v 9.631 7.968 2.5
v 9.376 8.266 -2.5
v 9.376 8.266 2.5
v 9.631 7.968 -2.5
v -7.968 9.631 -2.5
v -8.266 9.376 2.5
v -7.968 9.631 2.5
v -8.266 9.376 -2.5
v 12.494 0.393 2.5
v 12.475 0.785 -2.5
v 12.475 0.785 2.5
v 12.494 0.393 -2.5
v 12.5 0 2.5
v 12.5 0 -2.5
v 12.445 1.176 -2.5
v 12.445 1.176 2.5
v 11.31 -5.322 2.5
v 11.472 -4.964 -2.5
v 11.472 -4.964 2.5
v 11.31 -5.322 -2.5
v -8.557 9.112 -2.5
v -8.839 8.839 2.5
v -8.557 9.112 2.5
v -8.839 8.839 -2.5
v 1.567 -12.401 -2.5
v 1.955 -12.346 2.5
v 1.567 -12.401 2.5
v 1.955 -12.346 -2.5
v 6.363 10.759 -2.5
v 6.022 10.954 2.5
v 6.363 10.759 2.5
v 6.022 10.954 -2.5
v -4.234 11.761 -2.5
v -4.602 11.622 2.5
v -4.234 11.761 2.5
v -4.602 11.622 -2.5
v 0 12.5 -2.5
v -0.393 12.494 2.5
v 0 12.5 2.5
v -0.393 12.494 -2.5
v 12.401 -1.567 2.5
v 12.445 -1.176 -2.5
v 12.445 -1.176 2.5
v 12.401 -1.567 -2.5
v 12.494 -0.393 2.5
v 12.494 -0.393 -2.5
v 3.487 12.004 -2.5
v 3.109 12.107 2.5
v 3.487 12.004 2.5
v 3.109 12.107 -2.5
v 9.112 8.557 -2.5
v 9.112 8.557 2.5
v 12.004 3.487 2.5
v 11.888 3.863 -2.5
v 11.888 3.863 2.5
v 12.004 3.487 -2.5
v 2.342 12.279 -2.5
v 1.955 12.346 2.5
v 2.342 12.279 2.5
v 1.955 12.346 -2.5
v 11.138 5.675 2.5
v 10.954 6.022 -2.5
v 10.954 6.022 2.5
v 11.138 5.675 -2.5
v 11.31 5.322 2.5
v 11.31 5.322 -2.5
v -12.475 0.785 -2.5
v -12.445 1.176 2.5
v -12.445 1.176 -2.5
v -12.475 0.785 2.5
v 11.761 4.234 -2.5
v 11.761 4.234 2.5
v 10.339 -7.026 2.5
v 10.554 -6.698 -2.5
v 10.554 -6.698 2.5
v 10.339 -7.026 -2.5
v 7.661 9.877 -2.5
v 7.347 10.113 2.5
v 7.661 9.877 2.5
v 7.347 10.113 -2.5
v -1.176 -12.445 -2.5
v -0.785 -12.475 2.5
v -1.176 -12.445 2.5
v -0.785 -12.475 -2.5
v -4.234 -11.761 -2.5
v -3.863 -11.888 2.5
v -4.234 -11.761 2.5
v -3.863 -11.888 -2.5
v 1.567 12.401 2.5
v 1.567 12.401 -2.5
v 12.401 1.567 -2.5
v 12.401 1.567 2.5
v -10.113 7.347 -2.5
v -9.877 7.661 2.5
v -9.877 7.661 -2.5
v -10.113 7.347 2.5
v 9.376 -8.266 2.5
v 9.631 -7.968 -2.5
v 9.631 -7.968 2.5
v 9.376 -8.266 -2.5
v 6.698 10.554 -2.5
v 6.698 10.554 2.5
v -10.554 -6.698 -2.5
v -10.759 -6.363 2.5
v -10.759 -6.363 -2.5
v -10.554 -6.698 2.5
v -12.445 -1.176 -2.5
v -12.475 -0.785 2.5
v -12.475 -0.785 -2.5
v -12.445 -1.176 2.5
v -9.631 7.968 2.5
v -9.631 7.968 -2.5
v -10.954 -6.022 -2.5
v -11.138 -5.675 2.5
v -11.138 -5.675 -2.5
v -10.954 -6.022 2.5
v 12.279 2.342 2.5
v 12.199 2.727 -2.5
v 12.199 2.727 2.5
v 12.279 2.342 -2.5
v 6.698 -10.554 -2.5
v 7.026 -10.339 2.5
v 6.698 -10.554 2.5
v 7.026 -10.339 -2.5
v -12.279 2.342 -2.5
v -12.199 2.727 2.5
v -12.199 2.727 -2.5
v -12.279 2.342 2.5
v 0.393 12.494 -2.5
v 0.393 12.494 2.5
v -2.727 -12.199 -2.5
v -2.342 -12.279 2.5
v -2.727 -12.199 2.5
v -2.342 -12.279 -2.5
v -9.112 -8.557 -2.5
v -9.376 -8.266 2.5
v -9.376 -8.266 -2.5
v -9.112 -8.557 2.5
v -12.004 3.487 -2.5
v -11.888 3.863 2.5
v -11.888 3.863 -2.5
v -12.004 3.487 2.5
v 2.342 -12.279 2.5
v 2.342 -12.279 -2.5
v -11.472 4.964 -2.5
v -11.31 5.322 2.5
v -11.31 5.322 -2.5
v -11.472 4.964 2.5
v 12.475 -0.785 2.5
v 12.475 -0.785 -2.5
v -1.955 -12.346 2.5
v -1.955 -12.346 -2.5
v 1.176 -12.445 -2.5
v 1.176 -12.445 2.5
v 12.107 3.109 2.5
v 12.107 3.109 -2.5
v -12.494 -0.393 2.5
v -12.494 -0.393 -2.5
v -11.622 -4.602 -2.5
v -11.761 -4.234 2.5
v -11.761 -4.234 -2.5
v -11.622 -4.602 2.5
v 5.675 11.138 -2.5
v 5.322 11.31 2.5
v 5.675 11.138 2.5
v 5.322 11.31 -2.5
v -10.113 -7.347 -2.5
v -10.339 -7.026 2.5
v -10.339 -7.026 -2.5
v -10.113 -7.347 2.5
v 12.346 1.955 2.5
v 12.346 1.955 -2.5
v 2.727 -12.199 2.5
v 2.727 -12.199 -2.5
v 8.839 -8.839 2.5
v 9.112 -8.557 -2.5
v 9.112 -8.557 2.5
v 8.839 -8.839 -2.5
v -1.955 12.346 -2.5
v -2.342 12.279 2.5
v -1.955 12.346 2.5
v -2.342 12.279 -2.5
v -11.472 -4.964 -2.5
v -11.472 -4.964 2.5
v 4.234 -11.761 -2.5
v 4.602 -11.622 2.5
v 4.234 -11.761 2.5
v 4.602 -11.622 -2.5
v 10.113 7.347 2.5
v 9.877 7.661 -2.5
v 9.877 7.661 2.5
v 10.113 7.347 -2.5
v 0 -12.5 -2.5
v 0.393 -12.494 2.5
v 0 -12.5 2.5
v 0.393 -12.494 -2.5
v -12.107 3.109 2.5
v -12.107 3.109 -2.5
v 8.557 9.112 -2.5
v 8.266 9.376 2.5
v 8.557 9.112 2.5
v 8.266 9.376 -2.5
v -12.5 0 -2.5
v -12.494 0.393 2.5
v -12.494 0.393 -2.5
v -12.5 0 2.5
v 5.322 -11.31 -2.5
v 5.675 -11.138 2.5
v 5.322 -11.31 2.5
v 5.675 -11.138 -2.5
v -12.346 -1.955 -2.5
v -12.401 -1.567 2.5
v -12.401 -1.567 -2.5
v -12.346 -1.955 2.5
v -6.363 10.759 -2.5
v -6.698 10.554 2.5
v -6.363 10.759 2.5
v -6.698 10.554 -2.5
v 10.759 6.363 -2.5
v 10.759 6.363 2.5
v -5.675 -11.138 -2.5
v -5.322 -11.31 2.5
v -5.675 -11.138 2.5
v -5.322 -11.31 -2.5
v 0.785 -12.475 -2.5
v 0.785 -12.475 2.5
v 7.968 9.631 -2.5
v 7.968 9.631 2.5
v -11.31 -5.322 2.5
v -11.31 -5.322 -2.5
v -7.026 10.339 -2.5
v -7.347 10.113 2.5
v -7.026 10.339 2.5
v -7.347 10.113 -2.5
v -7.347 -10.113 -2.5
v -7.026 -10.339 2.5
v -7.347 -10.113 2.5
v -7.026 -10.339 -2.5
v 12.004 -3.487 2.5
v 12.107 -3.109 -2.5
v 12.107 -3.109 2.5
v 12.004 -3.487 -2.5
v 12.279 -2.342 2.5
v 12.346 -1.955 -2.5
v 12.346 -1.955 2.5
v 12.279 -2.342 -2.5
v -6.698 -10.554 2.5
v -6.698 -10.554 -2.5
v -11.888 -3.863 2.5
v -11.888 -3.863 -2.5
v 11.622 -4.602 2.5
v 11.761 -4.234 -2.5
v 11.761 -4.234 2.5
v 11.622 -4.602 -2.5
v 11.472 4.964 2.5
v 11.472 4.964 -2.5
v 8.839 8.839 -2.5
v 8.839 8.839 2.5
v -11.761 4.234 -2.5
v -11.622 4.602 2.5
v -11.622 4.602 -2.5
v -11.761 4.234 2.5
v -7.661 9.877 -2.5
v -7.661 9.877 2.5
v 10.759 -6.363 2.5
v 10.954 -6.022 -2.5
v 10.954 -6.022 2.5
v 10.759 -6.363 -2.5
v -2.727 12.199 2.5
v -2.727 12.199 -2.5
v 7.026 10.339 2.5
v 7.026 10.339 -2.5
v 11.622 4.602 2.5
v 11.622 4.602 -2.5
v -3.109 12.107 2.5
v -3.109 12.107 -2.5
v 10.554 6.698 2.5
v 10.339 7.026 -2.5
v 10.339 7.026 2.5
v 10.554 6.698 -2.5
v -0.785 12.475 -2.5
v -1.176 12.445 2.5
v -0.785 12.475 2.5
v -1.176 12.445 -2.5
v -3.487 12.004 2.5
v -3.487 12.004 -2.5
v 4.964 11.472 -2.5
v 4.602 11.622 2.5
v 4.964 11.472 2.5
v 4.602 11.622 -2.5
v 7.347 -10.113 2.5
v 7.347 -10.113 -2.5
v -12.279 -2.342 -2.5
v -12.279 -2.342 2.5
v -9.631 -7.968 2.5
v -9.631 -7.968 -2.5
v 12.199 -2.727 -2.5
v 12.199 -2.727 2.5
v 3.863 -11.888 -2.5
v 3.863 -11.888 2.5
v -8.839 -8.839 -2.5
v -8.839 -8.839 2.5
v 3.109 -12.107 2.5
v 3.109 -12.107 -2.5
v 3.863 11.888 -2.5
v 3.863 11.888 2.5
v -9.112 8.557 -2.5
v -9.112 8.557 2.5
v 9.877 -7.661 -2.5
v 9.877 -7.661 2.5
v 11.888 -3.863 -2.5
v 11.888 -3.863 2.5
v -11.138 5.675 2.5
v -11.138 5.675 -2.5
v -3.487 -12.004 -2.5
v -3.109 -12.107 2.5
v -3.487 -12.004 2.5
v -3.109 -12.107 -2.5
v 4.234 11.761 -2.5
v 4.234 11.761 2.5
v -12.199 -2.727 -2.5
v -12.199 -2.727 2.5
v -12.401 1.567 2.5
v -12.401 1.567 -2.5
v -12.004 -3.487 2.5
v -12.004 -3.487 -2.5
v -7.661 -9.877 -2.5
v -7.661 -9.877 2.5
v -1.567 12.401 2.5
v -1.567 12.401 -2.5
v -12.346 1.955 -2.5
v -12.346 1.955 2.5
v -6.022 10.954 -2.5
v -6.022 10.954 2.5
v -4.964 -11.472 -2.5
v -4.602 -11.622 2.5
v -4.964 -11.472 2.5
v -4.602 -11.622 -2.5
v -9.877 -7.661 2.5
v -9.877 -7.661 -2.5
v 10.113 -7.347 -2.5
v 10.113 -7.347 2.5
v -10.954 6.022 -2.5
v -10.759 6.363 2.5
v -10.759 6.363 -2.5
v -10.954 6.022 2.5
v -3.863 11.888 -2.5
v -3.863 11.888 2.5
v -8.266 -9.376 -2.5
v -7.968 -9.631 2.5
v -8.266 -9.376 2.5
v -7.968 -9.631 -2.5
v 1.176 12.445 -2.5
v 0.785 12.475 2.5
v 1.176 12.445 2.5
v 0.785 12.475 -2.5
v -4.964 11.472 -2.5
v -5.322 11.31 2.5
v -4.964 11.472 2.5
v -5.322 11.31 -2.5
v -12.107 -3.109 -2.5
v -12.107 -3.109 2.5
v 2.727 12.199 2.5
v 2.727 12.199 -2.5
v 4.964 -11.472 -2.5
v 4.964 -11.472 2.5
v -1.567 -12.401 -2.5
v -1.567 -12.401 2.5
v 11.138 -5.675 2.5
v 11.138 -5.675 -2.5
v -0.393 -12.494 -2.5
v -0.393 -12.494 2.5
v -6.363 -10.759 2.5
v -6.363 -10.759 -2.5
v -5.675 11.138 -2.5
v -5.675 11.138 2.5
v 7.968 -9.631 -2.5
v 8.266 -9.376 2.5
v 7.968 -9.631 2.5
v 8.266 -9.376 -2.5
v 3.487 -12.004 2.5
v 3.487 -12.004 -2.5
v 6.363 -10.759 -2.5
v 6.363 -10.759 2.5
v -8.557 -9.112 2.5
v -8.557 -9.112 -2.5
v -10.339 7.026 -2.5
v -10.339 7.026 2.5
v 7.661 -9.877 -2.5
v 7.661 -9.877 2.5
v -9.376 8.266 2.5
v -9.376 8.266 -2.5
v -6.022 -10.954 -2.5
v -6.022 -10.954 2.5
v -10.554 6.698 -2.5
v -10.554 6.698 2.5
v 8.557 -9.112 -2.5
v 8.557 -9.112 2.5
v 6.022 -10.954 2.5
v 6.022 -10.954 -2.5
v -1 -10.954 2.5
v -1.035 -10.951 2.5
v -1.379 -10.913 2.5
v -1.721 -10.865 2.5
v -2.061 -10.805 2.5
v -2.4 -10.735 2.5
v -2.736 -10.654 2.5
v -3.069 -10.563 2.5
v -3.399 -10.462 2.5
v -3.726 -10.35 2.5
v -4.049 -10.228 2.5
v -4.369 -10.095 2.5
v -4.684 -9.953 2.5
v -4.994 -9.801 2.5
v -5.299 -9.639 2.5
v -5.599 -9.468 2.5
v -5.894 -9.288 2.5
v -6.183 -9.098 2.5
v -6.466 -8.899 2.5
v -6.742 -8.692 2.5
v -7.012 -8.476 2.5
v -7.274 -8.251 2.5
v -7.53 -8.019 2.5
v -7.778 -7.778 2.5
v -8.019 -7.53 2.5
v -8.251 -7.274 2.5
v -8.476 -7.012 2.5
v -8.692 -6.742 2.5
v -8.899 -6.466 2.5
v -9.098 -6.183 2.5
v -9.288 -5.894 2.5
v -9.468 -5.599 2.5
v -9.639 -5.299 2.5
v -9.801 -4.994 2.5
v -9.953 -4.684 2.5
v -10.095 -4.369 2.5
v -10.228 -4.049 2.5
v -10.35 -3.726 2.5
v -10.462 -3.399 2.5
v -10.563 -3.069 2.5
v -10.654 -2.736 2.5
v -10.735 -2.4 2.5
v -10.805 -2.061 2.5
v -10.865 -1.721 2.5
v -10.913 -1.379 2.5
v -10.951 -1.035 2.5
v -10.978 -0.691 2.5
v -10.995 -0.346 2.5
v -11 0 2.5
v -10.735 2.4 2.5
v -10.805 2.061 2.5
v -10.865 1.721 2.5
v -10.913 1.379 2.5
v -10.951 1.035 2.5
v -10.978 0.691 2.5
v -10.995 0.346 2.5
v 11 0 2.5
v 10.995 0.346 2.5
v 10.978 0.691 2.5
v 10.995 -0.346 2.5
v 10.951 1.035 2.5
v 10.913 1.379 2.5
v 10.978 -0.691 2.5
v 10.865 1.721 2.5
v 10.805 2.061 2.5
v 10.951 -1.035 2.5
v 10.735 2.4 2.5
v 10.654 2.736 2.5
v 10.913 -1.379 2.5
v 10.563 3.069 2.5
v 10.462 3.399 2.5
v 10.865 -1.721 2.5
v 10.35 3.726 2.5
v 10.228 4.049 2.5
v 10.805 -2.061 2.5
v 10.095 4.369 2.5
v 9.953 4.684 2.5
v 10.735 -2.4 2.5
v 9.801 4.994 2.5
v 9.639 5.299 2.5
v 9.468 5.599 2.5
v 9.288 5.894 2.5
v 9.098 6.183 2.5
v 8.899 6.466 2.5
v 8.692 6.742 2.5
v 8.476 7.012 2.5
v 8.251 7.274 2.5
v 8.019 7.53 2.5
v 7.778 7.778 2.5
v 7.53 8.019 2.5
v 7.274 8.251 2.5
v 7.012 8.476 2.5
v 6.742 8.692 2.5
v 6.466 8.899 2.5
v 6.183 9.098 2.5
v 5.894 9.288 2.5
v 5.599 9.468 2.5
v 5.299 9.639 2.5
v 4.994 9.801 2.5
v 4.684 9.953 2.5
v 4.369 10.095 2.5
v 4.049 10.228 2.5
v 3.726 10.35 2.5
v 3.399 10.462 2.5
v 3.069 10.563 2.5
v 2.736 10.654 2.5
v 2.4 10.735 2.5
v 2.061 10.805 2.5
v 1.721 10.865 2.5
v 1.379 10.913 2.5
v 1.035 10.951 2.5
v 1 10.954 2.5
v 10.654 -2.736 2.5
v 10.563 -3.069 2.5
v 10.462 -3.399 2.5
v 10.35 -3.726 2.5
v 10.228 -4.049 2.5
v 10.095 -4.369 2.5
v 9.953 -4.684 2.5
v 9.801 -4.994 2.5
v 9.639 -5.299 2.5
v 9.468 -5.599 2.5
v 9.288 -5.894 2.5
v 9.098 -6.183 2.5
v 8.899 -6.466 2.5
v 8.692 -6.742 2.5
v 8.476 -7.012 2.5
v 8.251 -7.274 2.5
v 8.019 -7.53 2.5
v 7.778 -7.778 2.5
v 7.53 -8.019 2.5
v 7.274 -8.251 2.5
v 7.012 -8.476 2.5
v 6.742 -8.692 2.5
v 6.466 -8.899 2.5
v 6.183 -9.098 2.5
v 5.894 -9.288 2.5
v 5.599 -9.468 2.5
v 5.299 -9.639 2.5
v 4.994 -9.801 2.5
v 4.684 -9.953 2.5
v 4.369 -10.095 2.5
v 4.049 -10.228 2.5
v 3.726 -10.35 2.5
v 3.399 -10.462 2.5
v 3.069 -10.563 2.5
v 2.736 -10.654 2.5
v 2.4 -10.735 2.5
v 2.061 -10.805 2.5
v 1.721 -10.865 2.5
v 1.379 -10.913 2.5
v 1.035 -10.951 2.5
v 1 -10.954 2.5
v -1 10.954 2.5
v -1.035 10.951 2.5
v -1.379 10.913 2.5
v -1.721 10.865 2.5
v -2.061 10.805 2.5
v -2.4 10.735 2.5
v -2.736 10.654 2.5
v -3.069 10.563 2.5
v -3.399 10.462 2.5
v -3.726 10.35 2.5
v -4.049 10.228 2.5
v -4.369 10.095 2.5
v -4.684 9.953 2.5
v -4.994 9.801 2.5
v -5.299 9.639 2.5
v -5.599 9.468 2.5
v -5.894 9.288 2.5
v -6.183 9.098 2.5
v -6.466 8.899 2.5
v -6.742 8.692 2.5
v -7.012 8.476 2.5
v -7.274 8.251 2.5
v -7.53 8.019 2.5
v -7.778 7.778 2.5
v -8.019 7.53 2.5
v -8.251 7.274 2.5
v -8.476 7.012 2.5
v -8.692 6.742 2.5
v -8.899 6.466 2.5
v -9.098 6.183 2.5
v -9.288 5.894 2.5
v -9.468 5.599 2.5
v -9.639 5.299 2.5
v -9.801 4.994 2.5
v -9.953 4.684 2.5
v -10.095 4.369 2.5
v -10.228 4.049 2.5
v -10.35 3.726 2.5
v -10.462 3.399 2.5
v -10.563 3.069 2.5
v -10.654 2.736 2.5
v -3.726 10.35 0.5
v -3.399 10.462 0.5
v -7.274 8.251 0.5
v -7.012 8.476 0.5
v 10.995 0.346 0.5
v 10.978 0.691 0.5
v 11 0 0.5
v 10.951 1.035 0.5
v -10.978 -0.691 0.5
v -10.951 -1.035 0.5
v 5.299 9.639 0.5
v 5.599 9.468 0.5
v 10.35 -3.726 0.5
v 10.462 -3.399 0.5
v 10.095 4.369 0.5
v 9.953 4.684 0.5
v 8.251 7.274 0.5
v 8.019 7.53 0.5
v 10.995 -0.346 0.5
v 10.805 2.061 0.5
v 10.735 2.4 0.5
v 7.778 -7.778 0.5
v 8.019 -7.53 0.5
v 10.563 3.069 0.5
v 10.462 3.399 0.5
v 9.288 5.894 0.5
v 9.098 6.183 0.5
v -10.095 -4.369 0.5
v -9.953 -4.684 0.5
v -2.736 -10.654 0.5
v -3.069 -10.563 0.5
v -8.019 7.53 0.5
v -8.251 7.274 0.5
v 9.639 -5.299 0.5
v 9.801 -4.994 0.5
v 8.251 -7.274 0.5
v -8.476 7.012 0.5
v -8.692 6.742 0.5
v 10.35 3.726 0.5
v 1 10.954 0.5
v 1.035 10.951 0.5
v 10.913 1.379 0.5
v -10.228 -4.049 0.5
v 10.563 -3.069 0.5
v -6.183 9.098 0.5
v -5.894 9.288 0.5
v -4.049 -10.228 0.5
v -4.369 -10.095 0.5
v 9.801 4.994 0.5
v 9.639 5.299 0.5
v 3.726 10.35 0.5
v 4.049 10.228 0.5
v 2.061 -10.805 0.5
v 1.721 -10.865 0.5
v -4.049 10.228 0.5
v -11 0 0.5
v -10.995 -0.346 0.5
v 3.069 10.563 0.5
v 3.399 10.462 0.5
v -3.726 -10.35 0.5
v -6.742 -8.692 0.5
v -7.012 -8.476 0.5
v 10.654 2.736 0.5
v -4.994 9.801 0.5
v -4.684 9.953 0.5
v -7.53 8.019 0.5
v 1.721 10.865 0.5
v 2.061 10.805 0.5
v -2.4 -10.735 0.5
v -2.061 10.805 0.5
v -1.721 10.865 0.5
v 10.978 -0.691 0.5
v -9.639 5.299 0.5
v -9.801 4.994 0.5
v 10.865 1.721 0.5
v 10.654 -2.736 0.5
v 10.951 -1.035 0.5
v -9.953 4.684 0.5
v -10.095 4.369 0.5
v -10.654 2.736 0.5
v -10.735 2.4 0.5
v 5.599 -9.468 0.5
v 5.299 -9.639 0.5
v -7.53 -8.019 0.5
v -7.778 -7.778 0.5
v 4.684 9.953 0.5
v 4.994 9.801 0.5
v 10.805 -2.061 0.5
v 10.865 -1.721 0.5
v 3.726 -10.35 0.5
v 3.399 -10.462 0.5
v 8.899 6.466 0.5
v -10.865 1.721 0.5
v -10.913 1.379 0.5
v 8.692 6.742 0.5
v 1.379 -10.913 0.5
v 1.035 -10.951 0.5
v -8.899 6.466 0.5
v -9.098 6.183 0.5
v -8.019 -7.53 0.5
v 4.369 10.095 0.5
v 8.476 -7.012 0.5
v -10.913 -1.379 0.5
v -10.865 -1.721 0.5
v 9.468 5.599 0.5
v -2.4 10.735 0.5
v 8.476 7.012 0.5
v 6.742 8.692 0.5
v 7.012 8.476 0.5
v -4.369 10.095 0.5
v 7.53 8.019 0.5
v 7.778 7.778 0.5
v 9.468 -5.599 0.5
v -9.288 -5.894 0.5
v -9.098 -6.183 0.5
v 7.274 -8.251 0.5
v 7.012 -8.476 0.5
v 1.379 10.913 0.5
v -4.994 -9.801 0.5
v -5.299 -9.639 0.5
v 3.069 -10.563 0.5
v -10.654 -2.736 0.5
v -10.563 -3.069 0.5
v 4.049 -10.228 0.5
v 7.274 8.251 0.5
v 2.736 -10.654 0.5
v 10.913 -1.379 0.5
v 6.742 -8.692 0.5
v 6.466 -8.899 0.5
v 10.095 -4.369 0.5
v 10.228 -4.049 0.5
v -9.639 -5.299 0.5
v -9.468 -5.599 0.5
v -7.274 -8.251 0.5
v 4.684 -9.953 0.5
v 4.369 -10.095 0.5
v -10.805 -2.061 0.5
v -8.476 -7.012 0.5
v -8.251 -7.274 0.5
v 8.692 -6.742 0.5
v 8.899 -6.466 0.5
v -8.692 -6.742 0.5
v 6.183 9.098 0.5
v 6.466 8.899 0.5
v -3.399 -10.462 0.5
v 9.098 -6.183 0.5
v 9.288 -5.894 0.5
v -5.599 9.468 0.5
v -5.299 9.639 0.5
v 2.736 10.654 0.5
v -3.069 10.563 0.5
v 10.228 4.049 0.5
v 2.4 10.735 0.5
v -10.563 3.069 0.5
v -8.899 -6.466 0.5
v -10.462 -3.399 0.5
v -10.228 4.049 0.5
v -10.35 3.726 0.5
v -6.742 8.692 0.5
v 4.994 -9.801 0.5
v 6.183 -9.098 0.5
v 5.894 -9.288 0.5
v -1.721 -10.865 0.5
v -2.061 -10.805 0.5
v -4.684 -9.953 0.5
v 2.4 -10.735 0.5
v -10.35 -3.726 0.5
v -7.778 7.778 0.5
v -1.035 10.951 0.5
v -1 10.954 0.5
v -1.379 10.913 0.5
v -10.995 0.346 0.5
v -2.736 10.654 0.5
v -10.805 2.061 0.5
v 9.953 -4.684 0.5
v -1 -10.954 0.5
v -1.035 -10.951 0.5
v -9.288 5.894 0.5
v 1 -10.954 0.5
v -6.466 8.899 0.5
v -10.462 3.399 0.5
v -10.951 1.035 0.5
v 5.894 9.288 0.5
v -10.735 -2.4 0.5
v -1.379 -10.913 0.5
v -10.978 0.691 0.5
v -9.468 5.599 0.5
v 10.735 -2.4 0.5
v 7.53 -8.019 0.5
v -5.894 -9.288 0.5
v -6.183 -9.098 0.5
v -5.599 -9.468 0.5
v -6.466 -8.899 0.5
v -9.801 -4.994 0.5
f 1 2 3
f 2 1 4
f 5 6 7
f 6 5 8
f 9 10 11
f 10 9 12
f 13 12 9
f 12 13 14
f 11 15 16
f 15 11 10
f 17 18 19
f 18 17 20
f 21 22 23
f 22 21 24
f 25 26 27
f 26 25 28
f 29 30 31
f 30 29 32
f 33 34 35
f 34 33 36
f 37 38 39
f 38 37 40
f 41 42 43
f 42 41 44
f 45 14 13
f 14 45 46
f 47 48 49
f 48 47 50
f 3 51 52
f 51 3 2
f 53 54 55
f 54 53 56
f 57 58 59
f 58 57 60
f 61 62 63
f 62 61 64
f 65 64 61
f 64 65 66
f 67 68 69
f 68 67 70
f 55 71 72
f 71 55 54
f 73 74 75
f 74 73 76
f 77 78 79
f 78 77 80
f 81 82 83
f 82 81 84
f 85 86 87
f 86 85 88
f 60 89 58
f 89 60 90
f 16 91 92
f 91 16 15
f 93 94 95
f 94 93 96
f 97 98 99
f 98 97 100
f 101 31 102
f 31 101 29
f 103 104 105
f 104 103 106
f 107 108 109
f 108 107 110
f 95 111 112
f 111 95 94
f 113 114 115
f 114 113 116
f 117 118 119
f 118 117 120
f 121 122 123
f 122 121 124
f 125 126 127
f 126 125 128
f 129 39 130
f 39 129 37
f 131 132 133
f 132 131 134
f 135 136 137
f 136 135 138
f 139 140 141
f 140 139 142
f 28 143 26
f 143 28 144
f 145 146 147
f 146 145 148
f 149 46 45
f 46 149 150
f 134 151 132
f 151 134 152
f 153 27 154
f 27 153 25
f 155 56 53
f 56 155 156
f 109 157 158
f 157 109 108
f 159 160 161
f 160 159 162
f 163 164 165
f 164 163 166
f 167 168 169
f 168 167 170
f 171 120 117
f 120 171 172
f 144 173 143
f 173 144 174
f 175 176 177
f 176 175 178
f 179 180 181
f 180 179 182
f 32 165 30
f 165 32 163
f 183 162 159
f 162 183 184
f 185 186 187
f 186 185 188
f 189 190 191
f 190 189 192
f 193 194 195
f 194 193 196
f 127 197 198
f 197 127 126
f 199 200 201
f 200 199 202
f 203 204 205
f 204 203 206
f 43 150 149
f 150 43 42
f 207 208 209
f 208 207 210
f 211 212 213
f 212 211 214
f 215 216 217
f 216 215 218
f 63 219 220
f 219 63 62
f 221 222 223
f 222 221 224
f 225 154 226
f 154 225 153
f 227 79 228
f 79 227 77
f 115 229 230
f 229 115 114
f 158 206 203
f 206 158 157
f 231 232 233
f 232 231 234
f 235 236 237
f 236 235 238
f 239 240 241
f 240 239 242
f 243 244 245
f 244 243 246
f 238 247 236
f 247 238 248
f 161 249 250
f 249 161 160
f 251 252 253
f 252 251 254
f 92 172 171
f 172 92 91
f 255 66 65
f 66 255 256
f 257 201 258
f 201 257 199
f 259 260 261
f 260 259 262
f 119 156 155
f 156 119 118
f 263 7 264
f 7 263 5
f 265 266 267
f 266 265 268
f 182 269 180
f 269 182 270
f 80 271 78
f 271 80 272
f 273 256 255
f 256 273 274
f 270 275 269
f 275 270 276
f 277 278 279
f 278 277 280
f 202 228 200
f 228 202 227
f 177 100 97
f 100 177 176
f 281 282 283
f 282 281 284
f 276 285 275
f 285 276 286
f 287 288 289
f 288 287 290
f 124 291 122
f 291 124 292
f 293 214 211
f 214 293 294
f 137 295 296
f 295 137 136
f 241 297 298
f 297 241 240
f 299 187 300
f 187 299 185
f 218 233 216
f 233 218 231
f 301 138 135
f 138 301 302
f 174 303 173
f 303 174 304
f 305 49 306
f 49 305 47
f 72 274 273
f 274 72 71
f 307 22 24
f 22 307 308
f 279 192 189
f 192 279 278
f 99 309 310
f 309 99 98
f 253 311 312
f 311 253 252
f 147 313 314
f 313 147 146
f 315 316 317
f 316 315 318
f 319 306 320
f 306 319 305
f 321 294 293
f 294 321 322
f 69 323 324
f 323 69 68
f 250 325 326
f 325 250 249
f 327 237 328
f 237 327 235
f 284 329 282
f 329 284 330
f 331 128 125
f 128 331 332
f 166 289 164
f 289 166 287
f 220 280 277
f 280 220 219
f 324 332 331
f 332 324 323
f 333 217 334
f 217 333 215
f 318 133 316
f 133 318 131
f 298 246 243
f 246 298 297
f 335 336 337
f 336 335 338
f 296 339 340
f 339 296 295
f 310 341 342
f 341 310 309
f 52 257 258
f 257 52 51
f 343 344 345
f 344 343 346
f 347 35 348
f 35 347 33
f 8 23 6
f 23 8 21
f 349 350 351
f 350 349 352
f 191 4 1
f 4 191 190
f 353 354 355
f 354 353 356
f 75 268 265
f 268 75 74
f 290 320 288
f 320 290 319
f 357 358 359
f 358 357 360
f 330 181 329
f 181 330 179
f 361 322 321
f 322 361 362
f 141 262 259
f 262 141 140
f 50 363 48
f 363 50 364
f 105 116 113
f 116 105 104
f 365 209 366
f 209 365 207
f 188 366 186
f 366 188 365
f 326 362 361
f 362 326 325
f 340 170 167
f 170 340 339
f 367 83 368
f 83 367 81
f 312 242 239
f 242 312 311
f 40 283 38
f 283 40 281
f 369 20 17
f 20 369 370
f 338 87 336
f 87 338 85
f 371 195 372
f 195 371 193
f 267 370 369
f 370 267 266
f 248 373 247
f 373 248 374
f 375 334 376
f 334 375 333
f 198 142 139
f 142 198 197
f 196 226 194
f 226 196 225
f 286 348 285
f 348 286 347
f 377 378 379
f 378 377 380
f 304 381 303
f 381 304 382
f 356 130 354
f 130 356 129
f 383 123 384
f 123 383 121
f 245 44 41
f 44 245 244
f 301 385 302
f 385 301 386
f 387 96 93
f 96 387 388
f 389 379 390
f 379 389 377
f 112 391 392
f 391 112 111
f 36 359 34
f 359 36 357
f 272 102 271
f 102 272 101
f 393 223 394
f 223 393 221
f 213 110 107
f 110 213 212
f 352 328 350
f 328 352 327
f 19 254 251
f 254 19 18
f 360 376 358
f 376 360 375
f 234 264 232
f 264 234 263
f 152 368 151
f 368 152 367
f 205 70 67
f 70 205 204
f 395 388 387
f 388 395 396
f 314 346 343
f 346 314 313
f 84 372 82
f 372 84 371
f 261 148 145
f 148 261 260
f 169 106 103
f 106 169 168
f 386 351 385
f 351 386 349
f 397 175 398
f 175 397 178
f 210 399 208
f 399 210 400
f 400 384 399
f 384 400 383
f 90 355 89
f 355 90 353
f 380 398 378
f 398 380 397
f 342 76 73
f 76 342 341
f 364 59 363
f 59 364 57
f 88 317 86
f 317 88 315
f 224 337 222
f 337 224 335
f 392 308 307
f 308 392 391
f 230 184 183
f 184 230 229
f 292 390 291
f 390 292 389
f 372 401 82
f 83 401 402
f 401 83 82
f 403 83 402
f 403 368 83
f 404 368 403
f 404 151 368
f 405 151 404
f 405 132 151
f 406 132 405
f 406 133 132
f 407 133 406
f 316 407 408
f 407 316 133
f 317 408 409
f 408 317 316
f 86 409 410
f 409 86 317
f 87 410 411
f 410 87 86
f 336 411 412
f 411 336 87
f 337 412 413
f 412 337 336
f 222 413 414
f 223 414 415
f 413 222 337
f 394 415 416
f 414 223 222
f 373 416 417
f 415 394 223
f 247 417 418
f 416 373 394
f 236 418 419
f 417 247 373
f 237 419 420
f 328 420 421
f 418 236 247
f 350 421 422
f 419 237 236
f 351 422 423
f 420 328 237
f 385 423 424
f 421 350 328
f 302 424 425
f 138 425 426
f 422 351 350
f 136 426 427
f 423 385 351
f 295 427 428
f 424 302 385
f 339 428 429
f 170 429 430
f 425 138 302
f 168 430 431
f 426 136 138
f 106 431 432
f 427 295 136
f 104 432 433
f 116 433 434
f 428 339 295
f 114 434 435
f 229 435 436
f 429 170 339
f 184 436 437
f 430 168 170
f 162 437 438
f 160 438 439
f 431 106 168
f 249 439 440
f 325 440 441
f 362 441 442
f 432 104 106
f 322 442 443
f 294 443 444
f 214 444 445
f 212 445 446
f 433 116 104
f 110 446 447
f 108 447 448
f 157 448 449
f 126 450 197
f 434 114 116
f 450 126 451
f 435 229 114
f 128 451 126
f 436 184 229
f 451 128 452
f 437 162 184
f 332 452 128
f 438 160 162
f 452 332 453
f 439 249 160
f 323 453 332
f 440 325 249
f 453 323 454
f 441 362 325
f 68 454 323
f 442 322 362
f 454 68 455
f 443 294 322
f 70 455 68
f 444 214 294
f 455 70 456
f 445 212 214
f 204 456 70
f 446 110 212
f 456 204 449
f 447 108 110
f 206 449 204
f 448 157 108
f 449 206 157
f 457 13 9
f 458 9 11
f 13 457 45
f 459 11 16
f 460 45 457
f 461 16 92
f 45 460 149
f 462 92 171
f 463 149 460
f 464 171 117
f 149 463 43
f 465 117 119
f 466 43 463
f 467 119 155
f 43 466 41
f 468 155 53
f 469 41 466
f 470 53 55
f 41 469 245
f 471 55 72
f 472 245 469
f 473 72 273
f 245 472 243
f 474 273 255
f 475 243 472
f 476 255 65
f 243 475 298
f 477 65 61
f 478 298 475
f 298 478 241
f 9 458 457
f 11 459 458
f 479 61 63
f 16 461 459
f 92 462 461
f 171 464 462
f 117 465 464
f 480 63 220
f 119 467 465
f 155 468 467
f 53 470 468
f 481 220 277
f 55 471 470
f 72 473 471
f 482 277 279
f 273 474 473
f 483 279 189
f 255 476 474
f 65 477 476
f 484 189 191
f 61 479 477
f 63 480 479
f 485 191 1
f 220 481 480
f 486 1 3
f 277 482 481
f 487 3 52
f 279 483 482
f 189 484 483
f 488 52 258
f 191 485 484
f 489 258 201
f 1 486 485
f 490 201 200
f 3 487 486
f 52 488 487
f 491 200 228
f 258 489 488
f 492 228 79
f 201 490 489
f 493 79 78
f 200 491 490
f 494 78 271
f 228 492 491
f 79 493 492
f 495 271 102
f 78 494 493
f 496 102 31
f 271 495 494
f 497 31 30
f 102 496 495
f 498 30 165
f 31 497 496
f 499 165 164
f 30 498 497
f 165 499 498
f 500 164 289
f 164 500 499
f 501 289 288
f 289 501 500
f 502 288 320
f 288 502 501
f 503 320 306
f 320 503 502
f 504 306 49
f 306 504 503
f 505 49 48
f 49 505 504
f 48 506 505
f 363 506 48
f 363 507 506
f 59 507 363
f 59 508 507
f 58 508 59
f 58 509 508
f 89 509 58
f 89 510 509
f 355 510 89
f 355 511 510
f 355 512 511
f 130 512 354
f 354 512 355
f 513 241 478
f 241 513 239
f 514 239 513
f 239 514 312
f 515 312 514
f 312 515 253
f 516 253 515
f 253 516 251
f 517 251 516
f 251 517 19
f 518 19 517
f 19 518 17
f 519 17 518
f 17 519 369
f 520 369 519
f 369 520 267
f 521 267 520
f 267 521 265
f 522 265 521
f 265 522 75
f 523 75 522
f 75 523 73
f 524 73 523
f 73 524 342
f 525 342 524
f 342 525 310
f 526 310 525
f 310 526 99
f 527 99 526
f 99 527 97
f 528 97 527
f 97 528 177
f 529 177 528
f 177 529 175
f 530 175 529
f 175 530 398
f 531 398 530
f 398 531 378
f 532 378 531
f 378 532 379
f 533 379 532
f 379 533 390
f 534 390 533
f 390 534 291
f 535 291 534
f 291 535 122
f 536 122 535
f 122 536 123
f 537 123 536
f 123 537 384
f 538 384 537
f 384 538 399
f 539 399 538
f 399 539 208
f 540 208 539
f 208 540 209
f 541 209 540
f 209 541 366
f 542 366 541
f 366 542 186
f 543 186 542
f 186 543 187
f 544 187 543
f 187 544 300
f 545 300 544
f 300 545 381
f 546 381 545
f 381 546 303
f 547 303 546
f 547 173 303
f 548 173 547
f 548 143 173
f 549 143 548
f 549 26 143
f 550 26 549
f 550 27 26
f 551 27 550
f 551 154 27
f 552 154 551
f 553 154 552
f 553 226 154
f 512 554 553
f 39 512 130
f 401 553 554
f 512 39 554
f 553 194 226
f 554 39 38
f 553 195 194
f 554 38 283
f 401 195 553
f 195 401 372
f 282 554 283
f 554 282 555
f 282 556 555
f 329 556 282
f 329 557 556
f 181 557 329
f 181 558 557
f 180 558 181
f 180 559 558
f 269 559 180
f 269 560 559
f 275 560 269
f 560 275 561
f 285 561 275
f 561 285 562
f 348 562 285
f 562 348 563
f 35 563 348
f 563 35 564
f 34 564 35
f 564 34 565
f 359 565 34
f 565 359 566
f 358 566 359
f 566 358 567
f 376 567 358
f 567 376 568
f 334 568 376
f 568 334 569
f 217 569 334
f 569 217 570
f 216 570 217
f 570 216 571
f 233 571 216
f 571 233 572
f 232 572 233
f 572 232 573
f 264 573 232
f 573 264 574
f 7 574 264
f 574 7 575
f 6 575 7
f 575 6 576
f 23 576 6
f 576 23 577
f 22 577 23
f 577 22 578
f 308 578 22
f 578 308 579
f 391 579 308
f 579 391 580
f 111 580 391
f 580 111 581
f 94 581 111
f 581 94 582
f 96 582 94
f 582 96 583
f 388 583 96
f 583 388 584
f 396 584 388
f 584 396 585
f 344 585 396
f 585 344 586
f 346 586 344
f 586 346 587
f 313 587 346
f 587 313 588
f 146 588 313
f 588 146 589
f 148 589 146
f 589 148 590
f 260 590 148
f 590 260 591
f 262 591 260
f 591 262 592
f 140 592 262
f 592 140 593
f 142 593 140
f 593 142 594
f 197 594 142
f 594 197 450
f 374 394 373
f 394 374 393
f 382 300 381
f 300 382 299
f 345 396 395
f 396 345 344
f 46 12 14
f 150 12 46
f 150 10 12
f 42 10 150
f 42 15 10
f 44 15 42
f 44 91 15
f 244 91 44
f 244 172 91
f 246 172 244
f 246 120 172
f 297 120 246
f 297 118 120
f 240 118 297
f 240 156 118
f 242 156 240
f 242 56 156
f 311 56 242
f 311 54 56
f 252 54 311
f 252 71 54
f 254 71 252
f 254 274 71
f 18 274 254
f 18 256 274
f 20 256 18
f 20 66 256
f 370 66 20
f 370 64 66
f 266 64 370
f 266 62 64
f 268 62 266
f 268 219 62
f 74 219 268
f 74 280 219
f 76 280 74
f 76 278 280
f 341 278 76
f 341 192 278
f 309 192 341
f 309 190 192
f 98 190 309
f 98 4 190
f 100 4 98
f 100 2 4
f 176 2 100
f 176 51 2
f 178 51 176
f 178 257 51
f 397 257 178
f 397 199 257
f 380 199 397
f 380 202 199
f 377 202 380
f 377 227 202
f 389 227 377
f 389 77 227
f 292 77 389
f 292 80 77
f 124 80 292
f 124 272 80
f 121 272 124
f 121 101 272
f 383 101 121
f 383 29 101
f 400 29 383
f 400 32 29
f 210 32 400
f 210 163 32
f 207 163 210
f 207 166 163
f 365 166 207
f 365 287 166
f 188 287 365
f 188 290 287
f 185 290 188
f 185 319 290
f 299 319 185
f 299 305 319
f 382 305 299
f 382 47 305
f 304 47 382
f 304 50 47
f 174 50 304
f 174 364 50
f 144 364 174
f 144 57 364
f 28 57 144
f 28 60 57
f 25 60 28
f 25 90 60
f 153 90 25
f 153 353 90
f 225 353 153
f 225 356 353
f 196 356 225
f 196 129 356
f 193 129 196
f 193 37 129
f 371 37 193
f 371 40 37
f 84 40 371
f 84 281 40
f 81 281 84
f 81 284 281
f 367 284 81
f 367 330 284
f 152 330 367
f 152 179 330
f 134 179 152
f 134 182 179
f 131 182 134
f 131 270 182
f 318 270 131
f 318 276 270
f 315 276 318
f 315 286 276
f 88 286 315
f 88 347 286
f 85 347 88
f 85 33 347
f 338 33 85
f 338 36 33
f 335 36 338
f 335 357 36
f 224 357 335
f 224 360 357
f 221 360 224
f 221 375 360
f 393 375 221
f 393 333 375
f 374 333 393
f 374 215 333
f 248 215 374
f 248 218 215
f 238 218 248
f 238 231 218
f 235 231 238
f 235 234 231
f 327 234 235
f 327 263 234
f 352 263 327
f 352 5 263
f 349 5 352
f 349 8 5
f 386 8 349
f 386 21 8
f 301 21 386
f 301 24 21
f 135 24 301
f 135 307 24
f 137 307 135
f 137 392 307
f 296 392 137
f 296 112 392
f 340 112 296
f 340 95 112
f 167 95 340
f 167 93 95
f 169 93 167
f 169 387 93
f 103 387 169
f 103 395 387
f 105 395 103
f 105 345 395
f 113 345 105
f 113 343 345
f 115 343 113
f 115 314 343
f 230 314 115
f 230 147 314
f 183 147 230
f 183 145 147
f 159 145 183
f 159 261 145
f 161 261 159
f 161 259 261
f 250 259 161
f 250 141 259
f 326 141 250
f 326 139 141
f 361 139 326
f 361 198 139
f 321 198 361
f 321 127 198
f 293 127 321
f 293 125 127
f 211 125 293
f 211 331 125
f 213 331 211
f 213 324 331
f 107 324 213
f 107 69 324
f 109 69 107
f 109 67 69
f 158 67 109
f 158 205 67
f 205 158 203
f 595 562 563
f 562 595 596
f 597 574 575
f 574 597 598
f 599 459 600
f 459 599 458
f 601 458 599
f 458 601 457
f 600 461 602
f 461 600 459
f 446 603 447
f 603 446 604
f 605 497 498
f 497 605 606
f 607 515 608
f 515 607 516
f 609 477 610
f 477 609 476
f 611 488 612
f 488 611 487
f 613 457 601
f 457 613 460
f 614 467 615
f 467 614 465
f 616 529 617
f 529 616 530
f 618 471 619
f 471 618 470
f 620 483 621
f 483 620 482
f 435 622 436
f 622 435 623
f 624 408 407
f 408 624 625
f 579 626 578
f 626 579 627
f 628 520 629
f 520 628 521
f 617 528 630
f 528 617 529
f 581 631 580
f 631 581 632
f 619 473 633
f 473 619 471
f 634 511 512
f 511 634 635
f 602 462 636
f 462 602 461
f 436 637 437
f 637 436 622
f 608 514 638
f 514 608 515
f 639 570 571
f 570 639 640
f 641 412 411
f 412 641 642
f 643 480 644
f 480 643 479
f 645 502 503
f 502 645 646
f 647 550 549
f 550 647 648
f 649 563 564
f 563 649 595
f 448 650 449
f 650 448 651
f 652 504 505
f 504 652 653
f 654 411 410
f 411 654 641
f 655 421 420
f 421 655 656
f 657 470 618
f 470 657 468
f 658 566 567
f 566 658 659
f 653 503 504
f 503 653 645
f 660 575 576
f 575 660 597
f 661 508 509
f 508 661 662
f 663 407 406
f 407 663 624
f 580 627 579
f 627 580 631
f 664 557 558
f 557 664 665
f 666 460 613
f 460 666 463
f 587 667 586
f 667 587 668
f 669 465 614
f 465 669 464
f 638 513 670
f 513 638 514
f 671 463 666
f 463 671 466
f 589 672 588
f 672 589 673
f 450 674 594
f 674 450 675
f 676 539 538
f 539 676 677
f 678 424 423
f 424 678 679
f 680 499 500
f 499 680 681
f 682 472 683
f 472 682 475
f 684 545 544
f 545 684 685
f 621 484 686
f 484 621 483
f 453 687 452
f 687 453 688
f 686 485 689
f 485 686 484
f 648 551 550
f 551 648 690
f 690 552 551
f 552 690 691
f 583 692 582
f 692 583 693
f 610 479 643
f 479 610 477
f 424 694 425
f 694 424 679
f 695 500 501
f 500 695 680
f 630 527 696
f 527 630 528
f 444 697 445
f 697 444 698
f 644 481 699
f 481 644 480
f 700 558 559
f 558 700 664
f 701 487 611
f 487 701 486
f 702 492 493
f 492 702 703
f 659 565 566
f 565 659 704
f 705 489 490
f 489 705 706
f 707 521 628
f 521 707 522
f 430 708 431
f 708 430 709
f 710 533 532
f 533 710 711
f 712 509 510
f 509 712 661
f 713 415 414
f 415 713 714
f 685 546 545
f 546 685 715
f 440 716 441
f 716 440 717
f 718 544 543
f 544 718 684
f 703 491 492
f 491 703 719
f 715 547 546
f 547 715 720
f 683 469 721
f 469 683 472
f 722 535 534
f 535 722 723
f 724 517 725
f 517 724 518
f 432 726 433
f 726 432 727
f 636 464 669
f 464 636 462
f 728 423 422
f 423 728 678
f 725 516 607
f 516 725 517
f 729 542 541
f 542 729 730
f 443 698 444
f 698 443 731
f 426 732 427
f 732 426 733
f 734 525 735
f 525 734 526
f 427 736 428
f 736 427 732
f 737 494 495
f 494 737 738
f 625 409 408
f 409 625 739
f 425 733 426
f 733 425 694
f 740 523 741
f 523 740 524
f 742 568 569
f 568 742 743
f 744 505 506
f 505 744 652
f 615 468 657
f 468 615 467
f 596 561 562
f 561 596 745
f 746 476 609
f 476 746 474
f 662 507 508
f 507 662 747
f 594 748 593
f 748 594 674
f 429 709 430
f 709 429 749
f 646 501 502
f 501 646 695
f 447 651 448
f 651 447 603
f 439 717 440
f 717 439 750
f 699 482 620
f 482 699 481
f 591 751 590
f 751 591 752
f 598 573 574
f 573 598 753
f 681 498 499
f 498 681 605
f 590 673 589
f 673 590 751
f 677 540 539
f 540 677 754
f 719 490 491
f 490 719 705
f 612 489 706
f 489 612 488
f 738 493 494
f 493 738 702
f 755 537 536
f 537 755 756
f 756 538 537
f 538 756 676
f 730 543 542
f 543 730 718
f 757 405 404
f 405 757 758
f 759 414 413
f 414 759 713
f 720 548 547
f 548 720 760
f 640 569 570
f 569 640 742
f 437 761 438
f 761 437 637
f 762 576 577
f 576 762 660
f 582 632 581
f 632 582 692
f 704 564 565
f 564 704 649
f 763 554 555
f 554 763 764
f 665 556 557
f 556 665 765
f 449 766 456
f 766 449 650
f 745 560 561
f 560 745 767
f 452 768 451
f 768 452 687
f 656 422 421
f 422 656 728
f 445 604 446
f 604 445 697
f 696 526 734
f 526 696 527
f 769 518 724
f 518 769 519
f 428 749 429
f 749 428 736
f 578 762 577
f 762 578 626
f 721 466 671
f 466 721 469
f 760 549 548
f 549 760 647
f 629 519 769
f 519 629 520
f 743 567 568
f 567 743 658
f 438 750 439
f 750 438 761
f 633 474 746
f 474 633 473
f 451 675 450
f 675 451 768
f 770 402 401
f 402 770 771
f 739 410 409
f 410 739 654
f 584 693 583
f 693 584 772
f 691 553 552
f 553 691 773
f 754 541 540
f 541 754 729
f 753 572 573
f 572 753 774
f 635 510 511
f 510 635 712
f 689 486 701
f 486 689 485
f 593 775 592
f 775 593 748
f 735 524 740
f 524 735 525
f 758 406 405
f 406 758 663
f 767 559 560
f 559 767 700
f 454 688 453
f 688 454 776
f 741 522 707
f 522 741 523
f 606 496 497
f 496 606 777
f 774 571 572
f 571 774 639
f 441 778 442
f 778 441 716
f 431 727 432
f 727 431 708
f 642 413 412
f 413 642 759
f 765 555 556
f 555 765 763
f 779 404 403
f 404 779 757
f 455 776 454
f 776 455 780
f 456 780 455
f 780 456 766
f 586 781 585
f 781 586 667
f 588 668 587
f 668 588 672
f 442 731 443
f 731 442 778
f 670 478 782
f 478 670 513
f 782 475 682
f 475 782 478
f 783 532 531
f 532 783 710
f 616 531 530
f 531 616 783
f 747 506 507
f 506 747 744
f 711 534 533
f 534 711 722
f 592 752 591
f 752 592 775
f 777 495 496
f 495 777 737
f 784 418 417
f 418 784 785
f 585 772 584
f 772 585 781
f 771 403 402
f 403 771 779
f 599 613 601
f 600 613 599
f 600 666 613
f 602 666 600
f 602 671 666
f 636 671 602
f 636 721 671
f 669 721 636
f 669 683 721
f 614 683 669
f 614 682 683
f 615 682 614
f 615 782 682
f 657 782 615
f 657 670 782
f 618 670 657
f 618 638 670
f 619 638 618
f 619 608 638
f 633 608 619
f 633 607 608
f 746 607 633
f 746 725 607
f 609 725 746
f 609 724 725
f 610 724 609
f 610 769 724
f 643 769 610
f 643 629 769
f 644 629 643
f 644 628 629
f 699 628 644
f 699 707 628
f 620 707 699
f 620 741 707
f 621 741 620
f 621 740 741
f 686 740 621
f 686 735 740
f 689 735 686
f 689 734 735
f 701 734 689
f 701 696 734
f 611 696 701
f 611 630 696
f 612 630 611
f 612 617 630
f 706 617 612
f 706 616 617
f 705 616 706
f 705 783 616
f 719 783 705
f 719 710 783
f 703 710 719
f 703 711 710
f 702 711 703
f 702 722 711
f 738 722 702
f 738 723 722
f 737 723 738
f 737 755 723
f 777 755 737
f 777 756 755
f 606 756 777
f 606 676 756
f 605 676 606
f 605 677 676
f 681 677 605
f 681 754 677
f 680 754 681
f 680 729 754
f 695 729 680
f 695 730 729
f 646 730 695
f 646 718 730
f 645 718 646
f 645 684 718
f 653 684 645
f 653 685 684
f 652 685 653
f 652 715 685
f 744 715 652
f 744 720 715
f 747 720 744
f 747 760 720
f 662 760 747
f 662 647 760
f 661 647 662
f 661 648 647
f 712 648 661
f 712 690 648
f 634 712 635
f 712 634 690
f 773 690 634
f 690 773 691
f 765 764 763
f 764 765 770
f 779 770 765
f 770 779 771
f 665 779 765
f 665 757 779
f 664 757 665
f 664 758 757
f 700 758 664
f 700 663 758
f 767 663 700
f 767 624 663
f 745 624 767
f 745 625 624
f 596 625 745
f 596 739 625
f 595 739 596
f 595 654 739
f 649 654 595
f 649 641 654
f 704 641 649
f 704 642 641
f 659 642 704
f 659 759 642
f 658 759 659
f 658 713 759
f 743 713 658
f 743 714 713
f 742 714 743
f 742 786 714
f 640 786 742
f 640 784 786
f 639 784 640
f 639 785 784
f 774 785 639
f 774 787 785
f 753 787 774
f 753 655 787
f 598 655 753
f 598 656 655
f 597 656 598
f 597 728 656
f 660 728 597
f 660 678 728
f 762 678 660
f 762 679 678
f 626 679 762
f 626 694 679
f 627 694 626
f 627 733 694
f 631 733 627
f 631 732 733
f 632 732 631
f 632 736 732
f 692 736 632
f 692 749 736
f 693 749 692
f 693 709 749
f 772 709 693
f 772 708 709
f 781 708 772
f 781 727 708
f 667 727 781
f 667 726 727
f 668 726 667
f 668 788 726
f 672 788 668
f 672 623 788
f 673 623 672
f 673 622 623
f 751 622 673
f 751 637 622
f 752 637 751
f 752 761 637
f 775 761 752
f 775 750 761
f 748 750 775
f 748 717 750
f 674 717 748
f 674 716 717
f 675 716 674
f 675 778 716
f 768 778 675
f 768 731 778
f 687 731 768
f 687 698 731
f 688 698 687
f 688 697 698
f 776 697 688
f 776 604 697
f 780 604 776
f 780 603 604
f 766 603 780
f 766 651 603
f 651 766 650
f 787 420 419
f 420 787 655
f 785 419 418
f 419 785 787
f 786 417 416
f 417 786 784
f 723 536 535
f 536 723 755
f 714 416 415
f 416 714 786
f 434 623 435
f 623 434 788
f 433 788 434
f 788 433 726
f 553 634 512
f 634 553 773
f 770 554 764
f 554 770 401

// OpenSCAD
module cap(){
    union(){
    difference(){
        cylinder(d=25, h=5, center=true, $fn=200);
        translate([0,0,2]) cylinder(d=22, h=3, center=true, $fn=200);
    }
    cube([2,24,5], center=true);
    }
}

cap();
